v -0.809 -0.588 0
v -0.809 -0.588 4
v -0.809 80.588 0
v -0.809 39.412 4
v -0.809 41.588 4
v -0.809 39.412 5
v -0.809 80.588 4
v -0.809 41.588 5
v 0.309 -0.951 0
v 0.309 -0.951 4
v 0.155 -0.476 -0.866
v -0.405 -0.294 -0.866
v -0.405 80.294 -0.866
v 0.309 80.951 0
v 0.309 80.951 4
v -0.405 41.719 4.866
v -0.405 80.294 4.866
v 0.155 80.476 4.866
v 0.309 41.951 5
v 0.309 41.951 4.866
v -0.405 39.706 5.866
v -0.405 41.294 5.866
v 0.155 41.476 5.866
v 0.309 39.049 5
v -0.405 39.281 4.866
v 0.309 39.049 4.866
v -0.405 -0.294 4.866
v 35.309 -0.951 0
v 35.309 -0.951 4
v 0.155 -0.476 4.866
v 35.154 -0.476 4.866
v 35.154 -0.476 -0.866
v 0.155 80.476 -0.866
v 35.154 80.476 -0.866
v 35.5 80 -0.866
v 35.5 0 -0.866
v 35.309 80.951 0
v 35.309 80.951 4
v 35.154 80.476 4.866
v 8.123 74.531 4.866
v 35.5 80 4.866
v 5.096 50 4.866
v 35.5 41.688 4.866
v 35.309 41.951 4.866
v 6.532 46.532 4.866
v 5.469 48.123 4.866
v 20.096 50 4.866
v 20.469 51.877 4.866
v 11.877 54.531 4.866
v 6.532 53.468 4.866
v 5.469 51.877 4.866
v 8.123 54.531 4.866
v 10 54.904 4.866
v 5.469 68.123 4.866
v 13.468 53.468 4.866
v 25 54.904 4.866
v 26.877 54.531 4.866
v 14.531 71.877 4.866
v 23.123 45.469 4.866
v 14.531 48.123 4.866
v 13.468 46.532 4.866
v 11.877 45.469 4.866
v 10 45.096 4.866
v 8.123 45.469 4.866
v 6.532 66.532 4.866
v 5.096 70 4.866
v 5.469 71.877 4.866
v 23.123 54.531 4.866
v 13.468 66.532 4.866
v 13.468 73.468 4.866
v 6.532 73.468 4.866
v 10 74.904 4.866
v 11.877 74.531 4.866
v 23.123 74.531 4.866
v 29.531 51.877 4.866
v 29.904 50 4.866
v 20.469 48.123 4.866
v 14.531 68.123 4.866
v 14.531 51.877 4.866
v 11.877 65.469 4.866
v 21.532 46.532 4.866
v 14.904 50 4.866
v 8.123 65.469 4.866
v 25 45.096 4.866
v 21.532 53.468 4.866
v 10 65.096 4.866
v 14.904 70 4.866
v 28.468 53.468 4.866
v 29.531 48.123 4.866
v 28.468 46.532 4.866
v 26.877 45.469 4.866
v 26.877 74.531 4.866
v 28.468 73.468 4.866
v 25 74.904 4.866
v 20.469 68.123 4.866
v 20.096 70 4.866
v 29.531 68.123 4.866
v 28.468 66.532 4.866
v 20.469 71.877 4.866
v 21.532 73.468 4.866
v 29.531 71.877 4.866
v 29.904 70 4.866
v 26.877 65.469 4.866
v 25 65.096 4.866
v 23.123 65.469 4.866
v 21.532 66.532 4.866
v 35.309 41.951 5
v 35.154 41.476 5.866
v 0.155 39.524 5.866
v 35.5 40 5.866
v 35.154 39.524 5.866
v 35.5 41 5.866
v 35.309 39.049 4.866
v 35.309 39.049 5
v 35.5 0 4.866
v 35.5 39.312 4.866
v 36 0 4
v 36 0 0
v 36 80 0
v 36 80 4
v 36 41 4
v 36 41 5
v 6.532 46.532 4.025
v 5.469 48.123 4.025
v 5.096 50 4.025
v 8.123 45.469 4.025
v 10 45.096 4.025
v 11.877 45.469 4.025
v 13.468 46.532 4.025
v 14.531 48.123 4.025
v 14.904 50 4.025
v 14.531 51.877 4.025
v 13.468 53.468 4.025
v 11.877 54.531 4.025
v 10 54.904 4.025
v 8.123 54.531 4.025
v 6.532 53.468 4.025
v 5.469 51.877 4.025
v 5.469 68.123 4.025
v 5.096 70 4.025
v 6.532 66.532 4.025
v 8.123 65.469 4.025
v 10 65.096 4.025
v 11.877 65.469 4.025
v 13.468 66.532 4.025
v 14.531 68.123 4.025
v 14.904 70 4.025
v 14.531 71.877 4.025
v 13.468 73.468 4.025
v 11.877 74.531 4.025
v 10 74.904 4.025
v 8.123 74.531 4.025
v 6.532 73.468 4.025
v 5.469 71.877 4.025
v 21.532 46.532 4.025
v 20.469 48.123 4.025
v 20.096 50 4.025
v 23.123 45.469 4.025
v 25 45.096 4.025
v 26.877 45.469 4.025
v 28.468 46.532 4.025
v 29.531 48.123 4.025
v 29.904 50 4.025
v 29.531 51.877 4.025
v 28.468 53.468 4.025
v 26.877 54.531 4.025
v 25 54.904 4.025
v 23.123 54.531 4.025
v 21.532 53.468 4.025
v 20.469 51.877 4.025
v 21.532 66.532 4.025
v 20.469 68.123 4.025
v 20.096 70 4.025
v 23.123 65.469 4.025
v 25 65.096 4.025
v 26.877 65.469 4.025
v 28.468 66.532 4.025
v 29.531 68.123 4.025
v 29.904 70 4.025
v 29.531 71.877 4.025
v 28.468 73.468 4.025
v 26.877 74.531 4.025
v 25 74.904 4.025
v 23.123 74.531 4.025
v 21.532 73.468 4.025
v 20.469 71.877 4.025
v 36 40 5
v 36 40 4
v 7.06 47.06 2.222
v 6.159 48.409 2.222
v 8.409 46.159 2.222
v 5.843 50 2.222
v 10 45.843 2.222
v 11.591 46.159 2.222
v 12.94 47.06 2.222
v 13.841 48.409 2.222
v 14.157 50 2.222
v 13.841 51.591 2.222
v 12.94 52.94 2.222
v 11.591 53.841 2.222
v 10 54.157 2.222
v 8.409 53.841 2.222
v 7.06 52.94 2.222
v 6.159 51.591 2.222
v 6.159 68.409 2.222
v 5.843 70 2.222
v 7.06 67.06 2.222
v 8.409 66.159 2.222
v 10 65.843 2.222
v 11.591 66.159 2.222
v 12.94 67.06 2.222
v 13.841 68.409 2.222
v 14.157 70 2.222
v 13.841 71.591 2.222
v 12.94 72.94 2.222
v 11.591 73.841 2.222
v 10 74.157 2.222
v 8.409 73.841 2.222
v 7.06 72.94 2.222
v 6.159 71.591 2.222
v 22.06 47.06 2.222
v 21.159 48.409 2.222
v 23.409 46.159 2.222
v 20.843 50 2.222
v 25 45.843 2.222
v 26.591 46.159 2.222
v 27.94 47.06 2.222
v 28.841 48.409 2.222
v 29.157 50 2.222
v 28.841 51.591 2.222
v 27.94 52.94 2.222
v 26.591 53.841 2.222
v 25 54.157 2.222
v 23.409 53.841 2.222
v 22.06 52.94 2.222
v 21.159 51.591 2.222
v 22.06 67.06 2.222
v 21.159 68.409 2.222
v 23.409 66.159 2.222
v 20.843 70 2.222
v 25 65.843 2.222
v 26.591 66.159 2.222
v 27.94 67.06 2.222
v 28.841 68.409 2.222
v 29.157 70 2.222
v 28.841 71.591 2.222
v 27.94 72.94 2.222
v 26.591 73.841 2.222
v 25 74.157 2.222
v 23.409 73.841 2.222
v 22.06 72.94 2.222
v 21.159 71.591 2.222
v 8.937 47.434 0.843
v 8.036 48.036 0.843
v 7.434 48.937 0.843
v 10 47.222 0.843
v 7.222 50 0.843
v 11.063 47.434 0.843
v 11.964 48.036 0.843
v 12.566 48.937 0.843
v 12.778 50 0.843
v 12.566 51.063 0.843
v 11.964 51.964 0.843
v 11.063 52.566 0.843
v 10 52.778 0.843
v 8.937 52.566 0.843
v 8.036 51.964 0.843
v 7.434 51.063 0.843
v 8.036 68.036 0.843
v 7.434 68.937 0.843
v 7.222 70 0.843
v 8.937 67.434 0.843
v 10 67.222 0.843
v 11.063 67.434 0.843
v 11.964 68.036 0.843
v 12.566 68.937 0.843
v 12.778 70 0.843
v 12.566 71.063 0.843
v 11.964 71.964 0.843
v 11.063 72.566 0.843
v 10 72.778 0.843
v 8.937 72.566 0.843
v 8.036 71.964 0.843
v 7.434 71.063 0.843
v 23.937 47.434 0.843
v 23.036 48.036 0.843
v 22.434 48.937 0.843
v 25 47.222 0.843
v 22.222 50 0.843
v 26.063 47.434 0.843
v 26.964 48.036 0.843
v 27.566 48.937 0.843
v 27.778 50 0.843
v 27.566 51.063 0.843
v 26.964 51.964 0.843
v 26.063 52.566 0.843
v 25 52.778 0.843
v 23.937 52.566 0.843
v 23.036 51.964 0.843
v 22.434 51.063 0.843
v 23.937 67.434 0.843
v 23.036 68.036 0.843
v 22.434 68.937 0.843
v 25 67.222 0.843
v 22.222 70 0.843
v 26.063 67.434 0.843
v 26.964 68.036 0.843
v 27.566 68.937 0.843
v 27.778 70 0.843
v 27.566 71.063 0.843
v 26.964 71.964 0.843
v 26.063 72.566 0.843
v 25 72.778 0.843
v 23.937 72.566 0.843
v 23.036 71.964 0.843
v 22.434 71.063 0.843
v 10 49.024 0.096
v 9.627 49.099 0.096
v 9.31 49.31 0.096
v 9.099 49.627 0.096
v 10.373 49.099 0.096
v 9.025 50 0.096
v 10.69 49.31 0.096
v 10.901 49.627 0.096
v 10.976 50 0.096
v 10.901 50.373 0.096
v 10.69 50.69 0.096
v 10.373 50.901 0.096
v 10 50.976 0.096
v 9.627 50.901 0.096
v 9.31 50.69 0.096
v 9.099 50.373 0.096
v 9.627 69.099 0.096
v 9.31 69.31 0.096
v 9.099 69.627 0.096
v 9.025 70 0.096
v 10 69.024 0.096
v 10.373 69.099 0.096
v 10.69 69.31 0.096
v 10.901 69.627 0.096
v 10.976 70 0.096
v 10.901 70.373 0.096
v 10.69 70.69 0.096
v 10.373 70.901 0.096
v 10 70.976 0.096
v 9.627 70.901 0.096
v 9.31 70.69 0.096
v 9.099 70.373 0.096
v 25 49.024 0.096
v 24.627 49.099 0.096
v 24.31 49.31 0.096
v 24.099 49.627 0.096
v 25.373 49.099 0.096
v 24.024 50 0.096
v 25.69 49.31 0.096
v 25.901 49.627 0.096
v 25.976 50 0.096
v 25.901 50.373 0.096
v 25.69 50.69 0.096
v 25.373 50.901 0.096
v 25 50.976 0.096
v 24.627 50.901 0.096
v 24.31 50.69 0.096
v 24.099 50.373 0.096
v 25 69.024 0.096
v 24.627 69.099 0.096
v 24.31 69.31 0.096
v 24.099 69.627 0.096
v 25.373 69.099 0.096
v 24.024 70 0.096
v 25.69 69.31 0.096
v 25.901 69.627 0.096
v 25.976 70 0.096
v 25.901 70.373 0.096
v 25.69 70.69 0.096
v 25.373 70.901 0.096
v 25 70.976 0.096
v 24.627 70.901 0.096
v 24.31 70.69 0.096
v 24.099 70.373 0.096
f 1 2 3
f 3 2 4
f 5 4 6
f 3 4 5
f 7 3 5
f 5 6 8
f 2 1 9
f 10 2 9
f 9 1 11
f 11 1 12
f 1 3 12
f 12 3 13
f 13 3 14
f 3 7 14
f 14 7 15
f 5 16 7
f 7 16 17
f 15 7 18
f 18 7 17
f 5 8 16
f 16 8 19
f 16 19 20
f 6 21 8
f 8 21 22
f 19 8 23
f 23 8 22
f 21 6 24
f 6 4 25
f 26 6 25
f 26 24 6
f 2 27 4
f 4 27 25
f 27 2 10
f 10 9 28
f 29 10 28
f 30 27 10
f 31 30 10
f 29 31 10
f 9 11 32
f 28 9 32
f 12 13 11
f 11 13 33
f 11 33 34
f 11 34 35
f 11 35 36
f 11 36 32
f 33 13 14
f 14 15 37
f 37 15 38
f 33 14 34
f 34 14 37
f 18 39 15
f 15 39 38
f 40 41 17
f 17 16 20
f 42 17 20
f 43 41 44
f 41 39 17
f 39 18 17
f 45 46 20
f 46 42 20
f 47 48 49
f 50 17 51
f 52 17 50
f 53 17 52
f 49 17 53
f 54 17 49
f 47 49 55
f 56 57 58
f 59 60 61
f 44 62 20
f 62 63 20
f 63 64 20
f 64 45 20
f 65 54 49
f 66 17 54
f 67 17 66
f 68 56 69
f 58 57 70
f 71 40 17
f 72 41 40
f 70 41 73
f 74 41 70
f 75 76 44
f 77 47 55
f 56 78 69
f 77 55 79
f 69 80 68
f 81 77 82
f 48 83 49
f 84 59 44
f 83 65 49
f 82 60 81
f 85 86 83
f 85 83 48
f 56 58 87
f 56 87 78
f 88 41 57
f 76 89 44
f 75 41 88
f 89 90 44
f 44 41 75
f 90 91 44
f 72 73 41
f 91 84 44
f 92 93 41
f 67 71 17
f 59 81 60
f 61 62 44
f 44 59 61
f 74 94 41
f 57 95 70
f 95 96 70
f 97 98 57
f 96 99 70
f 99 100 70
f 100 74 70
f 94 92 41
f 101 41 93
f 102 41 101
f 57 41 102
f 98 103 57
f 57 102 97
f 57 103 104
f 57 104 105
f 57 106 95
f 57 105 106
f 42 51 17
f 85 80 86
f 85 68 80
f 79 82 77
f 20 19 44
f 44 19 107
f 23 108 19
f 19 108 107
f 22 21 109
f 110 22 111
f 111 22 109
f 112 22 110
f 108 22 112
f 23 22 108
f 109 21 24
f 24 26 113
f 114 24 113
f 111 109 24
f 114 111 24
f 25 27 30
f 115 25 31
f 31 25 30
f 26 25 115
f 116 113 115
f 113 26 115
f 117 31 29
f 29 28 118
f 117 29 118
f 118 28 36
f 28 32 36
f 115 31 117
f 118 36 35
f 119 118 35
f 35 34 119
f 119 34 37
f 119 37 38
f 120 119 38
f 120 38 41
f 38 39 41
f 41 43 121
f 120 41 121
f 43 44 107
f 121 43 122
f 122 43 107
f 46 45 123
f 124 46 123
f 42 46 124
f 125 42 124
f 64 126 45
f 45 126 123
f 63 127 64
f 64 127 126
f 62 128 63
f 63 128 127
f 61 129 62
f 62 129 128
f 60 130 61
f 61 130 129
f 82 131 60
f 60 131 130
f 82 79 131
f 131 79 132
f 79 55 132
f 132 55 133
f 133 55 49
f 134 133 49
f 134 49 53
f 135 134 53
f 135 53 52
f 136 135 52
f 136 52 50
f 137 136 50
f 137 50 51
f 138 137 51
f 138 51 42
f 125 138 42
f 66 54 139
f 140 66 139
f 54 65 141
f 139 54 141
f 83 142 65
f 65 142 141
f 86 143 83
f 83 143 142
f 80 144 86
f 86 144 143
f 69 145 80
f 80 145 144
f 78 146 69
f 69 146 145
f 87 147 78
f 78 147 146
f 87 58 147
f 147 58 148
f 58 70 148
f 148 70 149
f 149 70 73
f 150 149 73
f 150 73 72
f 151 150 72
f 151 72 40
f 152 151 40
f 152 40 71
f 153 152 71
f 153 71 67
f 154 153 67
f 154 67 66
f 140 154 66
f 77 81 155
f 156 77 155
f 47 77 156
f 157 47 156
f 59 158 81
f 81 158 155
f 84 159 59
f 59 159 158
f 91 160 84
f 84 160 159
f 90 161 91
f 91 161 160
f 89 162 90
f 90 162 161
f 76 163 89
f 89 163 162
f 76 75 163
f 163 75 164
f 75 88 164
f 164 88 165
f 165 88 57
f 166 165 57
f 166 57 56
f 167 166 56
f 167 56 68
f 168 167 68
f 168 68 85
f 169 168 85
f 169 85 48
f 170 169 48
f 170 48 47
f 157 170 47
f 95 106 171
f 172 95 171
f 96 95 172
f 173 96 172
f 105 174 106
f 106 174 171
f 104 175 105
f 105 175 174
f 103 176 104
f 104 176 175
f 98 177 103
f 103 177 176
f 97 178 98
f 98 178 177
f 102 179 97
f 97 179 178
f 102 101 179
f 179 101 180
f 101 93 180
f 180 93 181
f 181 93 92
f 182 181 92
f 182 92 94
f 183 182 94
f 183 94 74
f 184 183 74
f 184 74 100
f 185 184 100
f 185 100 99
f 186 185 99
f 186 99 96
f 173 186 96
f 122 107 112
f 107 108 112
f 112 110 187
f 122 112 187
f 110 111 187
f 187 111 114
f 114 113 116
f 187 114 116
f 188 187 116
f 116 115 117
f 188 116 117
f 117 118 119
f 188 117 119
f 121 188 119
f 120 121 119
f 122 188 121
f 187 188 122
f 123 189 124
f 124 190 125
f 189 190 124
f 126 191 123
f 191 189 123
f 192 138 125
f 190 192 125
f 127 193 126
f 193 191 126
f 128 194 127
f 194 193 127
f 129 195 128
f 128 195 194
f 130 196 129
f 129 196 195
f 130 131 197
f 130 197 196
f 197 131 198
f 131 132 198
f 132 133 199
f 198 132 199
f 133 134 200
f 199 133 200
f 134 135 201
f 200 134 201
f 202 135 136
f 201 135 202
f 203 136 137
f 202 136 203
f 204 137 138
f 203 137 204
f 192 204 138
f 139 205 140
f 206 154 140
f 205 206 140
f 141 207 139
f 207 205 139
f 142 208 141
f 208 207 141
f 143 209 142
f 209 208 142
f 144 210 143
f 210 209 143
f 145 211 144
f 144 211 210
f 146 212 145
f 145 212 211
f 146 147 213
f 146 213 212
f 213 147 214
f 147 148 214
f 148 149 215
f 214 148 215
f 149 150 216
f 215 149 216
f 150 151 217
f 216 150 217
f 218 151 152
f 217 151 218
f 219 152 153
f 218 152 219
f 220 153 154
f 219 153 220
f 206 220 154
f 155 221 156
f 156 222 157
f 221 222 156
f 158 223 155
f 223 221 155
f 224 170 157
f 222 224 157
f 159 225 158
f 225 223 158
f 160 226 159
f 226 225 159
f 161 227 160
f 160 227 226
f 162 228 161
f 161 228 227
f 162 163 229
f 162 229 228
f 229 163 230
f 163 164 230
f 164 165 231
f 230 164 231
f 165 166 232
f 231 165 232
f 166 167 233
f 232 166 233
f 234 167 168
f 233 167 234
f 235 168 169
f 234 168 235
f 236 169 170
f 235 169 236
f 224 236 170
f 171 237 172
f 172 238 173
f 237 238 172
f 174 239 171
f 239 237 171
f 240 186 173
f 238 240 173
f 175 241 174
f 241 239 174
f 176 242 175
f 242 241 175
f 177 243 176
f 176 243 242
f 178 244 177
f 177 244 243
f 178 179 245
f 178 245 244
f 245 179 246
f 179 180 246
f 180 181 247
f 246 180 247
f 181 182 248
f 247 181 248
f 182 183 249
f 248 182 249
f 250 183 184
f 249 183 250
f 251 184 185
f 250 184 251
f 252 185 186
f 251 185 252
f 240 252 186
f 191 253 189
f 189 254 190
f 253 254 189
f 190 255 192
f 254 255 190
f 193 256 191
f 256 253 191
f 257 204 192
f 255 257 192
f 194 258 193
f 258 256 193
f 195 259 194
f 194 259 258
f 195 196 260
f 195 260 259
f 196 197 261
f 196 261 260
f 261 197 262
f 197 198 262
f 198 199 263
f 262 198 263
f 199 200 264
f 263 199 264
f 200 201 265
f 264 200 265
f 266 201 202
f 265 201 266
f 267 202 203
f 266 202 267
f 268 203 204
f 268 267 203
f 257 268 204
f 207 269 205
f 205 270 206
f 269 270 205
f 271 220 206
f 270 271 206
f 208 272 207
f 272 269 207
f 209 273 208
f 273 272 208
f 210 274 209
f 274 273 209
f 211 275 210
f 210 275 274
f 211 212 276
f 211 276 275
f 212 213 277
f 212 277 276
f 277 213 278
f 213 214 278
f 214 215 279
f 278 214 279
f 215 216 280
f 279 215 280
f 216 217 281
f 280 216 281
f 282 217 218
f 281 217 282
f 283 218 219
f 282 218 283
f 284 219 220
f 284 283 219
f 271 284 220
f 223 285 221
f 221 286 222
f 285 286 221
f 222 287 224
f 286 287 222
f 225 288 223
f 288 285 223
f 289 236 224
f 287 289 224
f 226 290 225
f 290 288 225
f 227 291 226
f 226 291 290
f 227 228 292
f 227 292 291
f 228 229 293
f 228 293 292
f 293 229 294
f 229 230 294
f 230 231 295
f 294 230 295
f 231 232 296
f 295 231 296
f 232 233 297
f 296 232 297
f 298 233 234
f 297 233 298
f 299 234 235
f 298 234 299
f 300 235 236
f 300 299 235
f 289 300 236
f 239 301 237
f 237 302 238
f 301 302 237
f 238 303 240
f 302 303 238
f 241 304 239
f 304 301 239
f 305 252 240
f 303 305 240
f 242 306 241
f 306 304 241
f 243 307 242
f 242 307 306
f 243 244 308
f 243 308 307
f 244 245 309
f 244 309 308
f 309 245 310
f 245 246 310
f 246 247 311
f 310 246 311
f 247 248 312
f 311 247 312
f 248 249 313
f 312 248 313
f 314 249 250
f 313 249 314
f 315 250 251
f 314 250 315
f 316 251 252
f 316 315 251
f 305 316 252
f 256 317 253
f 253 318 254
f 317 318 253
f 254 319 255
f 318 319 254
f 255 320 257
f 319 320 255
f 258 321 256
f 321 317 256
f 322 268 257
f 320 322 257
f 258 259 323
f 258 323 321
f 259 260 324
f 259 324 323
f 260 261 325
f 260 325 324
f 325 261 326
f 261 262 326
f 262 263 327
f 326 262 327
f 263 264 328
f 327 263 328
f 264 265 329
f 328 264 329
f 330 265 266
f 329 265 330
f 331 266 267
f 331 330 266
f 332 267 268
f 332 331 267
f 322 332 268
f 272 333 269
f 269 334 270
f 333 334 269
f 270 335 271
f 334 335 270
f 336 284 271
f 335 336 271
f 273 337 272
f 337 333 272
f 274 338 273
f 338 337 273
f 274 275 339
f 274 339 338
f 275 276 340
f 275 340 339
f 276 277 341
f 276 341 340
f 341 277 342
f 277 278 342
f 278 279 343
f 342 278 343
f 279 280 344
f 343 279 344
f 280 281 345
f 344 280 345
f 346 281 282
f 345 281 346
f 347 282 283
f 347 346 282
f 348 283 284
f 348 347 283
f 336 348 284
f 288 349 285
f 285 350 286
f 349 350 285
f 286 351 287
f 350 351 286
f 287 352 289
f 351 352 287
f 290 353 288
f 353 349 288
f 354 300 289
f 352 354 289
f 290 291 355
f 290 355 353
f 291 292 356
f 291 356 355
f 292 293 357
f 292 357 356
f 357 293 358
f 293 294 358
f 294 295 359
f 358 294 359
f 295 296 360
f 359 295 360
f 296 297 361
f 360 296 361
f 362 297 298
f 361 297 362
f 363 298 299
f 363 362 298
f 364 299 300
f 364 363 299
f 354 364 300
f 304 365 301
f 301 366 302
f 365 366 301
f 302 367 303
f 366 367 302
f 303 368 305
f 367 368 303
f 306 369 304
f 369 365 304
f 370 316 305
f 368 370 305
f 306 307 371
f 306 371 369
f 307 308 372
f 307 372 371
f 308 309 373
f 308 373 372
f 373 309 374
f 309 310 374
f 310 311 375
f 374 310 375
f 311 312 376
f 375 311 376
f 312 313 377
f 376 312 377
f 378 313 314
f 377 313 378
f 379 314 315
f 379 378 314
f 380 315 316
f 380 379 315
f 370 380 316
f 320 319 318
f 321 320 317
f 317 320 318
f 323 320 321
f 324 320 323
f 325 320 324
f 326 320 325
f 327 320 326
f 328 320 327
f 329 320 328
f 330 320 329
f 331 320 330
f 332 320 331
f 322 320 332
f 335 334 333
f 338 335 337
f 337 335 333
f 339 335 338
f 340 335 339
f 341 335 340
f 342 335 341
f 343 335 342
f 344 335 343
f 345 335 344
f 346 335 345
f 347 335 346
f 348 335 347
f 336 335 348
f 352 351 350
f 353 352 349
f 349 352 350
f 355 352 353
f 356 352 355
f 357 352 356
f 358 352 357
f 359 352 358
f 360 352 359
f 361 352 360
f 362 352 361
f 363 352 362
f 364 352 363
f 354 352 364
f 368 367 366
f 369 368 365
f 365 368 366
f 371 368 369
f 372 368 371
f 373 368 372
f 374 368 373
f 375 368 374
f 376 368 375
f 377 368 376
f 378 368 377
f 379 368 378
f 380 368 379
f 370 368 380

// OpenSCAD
// Loguncov Maxim 13.12.13


//$fn=128;


translate([0,40,0])
minkowski()
{cube([35,1,5]);
sphere(1);
}

difference() {

//основа
minkowski()
{cube([35,80,4]);
sphere(1);
}

//отверстия


translate([10,70,5])sphere(5);
translate([25,50,5])sphere(5);
translate([25,70,5])sphere(5);
translate([10,50,5])sphere(5);



}
